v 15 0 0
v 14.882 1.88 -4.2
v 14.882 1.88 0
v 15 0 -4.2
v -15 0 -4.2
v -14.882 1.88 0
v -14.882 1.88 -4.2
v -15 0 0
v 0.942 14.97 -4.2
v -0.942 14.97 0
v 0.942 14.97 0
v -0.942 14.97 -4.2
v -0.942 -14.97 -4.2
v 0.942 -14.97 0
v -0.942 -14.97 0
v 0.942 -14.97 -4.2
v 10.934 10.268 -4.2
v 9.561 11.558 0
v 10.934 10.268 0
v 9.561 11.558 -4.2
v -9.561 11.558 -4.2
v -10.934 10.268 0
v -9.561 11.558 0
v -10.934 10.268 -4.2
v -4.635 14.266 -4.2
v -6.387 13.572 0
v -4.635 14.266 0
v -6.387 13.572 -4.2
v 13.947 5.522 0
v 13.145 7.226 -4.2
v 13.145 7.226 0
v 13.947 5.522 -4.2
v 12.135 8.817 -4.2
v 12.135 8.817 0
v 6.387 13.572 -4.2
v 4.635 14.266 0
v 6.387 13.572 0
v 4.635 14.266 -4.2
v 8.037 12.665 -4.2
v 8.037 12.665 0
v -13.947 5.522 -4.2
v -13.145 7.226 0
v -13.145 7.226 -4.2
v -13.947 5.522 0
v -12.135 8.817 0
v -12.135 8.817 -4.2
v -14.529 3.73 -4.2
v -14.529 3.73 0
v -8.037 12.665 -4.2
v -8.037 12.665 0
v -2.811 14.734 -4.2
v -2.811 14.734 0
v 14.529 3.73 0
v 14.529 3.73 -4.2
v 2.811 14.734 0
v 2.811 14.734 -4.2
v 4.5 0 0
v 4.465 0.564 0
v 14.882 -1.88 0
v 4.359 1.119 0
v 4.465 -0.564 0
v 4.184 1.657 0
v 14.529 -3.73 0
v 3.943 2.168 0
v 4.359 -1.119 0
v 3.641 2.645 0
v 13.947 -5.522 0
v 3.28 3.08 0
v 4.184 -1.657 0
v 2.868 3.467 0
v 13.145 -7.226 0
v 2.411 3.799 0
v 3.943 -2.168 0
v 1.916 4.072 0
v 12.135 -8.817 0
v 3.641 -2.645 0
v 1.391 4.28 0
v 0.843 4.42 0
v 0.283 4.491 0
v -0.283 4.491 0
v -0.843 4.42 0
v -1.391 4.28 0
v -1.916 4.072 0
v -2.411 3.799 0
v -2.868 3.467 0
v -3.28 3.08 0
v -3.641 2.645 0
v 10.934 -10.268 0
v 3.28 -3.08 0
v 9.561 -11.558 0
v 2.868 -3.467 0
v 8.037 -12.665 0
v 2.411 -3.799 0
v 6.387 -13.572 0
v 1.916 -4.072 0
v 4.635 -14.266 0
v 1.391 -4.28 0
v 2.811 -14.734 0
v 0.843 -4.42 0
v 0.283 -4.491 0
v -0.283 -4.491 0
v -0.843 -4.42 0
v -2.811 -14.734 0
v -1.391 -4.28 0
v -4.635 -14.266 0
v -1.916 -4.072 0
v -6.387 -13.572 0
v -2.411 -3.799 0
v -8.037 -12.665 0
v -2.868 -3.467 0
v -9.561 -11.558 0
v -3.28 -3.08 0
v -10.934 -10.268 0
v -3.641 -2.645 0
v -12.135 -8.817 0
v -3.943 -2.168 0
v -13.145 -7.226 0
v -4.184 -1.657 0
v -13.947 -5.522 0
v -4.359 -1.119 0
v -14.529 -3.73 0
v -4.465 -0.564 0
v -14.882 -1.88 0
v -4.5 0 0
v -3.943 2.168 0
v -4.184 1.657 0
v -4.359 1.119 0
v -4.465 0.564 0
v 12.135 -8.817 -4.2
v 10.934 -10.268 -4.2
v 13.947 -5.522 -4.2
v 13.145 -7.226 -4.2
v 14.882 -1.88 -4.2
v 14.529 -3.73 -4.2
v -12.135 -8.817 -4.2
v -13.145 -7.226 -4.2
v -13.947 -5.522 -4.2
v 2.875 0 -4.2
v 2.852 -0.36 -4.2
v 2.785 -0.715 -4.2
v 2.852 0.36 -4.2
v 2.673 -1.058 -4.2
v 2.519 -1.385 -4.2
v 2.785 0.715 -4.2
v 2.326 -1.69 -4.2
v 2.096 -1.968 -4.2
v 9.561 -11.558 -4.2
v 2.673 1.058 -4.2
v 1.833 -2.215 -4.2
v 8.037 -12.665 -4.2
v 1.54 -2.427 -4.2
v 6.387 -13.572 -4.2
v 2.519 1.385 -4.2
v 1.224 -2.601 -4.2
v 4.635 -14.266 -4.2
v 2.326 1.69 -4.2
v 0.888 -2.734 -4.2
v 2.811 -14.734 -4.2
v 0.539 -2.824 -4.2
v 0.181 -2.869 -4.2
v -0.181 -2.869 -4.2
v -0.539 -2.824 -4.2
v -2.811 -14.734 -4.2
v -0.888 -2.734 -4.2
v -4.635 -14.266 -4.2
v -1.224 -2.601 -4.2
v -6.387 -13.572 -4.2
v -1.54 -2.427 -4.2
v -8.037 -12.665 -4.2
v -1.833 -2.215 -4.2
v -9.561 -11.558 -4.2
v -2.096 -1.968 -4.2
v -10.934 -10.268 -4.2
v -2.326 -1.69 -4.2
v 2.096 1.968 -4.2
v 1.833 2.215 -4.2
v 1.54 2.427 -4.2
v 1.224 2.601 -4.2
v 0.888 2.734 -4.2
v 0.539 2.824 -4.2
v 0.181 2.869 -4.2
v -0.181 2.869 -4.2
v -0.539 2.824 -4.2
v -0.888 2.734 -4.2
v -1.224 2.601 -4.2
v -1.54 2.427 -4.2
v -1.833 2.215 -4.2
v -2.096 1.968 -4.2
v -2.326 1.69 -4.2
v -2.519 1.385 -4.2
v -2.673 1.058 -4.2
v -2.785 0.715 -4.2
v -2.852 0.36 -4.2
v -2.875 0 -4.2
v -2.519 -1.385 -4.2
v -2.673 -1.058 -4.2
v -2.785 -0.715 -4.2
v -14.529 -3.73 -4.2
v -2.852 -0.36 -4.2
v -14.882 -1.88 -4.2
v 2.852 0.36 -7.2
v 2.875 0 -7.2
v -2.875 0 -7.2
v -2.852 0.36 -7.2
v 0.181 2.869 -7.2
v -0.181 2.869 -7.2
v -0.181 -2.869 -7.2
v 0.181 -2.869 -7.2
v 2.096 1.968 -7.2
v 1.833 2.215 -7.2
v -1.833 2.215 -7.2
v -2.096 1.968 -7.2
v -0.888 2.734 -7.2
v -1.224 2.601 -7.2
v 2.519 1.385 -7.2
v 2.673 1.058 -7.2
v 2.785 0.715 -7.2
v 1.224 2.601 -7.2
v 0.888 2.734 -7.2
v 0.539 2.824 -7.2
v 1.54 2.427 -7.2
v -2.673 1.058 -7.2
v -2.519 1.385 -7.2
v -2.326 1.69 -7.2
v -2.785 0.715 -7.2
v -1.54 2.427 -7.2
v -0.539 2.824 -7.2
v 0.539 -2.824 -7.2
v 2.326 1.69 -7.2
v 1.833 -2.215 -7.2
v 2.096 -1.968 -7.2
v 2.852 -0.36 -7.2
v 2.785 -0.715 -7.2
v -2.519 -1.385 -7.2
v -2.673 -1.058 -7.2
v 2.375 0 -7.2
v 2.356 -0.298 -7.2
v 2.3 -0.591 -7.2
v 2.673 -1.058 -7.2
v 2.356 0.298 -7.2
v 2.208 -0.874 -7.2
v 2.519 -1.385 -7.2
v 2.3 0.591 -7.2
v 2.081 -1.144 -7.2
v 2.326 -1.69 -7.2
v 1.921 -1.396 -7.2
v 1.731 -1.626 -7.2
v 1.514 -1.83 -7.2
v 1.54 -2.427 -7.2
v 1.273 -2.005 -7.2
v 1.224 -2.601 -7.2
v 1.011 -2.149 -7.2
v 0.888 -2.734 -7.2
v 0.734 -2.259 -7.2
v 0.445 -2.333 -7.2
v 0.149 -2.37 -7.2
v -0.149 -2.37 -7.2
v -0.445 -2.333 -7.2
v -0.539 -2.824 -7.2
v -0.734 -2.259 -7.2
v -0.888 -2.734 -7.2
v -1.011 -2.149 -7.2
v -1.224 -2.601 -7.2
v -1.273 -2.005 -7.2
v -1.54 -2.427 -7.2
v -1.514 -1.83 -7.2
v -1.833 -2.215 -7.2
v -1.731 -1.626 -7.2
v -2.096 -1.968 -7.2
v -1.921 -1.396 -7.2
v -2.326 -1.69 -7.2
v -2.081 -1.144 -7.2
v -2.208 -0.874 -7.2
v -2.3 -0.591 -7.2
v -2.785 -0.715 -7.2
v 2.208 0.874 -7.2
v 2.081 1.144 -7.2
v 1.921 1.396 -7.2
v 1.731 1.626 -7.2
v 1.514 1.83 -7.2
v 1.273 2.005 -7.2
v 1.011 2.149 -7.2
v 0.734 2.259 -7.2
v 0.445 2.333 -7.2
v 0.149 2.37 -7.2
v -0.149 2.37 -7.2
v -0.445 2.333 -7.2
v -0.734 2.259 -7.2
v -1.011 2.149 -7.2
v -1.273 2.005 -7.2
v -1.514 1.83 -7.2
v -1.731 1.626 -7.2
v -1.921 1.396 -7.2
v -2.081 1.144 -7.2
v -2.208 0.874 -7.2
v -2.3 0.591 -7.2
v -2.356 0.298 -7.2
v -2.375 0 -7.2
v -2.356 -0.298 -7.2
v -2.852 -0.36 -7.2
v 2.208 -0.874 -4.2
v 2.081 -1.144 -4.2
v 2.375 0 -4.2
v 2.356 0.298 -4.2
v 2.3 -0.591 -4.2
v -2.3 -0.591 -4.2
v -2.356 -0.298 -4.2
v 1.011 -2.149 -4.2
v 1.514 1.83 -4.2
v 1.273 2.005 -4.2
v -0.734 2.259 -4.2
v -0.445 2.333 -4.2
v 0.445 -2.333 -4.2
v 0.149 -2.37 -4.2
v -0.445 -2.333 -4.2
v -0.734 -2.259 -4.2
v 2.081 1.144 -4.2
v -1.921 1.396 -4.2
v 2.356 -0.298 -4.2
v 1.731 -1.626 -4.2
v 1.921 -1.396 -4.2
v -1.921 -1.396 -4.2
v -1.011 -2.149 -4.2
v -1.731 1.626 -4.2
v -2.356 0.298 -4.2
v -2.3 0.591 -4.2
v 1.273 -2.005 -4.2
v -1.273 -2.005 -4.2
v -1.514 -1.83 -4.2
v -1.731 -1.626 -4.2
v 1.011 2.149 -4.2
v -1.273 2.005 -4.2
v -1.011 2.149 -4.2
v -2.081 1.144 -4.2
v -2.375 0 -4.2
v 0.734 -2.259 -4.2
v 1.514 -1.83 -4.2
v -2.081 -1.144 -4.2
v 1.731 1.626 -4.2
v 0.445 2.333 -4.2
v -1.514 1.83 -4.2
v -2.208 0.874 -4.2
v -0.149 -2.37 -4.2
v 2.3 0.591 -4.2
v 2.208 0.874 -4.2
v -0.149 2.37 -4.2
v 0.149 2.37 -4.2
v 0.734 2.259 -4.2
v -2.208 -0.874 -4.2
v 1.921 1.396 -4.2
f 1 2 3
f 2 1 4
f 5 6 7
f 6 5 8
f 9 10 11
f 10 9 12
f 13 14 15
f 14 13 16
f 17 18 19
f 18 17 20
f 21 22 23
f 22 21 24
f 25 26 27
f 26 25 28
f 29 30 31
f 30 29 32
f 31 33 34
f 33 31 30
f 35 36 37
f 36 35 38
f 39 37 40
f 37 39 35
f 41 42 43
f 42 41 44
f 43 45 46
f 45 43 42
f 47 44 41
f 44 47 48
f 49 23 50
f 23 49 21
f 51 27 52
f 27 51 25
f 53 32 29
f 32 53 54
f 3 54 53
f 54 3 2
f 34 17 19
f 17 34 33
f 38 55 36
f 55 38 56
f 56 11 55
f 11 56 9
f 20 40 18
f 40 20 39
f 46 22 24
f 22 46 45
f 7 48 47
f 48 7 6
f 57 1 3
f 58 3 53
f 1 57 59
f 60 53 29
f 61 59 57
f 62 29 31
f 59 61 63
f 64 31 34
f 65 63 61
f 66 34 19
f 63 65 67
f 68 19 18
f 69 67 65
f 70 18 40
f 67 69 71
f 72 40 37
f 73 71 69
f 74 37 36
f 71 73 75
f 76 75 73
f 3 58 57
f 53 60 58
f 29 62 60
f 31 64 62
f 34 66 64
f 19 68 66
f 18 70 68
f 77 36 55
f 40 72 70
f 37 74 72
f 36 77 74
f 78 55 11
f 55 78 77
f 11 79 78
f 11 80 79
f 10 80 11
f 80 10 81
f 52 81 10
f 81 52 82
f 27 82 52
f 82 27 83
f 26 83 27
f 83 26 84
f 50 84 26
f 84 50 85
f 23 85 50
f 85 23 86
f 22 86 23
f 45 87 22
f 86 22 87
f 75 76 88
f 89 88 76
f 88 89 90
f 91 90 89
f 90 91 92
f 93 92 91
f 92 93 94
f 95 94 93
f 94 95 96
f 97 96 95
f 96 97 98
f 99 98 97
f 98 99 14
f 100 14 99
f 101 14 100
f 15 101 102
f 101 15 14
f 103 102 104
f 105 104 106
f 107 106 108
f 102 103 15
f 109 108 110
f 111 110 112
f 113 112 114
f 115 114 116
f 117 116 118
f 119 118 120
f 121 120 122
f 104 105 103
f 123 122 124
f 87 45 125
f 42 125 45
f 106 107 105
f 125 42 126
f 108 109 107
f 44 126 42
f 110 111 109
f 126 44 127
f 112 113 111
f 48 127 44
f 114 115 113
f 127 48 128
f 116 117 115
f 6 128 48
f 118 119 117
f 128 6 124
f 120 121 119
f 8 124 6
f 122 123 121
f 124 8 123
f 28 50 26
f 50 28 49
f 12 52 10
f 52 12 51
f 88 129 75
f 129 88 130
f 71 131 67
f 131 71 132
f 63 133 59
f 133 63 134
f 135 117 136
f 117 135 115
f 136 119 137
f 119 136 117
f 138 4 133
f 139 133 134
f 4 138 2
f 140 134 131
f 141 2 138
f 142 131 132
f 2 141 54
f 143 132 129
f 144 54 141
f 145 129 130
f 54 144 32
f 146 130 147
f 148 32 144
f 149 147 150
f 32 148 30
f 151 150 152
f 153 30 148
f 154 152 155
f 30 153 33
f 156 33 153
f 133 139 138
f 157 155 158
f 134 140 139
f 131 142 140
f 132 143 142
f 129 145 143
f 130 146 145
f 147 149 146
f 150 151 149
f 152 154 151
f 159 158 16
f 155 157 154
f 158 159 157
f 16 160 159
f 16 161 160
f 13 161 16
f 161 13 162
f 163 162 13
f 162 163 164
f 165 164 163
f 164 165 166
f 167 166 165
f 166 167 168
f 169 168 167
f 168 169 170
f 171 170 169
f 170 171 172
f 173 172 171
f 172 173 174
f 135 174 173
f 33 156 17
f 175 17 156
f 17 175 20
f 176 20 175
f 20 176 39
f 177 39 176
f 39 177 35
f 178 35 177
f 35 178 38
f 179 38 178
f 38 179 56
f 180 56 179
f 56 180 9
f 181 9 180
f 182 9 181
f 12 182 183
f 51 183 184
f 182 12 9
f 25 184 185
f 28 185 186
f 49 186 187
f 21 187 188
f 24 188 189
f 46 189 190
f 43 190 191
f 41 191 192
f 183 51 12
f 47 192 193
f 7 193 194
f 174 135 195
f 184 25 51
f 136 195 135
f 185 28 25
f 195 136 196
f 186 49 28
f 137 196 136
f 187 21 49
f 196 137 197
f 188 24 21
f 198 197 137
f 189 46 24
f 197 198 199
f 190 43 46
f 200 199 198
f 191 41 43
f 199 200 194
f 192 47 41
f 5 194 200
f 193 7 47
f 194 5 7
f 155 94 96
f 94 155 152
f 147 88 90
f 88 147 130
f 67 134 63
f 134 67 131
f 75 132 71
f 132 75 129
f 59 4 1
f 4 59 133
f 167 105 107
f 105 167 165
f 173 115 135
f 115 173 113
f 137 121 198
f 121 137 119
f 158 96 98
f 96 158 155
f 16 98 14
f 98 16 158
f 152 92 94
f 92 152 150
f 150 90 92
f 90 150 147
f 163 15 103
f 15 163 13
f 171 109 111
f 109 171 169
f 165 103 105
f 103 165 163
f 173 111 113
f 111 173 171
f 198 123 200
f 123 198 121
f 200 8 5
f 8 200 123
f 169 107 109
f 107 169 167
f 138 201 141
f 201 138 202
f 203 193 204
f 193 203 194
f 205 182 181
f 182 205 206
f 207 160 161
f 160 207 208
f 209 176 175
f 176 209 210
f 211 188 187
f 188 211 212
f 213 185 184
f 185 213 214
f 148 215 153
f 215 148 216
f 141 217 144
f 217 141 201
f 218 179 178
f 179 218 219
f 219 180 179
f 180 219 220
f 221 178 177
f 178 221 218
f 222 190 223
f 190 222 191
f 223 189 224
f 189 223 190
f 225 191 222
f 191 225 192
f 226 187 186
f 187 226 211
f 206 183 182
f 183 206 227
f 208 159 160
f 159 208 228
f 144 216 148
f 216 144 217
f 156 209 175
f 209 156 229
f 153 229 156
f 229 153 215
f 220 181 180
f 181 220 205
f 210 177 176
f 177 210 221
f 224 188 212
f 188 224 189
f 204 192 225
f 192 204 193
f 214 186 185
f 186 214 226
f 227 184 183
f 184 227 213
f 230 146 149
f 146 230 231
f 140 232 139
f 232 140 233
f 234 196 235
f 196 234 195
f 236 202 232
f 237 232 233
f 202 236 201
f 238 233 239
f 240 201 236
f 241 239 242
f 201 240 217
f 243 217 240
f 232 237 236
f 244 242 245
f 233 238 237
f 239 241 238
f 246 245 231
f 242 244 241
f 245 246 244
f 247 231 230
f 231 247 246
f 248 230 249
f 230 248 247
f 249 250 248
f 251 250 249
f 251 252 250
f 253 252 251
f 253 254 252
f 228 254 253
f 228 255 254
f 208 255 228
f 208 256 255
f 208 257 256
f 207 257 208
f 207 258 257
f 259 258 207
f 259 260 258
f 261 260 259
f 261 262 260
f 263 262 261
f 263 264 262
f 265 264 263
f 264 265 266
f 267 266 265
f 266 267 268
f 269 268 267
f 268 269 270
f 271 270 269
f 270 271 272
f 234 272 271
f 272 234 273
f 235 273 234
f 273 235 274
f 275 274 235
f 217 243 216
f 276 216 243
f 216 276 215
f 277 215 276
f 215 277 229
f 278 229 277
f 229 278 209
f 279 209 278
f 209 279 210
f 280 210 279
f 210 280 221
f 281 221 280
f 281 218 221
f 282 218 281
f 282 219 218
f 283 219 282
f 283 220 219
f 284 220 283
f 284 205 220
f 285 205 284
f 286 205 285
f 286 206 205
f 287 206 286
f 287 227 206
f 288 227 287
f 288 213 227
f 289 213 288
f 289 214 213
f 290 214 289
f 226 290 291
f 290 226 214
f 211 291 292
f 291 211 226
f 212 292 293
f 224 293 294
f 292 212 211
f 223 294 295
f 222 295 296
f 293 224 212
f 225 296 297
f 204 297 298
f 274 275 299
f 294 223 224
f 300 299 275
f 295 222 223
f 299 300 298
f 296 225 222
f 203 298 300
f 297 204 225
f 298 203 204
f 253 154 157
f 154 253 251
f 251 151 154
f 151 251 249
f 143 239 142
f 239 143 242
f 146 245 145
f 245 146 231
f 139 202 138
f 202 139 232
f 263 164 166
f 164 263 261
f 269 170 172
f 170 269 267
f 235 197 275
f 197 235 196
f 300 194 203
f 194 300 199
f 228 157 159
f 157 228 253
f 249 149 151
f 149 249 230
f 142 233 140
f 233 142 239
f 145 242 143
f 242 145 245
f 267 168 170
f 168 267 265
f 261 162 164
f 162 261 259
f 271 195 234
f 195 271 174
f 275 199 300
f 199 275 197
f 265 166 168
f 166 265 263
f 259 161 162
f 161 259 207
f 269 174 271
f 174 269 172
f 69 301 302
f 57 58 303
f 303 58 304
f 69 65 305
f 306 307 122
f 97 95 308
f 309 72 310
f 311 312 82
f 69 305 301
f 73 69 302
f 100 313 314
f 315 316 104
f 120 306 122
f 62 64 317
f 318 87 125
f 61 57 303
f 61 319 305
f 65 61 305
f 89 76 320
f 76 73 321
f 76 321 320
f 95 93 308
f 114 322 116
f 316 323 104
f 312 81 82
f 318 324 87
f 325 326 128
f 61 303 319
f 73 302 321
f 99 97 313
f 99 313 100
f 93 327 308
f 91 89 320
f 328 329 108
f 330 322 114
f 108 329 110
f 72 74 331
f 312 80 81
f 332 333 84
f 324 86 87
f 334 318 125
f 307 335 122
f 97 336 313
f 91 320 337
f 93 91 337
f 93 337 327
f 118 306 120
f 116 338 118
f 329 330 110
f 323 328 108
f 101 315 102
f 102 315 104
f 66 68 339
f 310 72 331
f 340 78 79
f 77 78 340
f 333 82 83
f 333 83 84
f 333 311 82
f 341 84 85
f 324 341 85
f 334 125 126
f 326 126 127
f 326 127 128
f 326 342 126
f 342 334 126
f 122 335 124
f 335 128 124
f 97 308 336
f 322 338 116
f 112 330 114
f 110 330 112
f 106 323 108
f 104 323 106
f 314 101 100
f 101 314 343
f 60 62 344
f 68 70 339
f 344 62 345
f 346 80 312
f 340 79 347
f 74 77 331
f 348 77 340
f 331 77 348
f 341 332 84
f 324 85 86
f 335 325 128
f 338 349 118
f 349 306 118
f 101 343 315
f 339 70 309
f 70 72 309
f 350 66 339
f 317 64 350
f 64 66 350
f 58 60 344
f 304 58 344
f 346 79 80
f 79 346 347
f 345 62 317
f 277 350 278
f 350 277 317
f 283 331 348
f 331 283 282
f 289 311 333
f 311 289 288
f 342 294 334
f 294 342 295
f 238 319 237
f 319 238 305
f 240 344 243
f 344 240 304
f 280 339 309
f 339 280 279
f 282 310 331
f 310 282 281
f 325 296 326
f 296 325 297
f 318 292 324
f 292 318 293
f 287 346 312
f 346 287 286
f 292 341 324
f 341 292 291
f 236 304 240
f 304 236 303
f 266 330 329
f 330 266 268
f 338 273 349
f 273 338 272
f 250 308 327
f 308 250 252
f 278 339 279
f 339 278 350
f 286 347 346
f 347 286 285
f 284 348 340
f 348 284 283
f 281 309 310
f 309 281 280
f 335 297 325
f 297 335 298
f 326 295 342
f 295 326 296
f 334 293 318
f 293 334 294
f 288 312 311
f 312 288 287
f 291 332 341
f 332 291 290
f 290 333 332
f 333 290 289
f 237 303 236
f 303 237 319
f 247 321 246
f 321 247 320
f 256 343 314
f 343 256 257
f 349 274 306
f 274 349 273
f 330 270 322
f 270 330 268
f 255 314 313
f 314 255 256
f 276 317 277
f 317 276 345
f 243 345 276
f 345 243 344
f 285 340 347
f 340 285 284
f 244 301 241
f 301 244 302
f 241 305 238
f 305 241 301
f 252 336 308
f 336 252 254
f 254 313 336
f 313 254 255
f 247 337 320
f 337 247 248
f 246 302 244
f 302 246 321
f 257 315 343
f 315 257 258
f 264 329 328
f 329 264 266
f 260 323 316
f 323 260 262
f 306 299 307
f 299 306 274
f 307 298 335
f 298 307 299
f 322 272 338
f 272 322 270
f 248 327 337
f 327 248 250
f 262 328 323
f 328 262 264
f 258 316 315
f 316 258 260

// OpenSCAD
$fn = 50;


difference() {
	union() {
		translate(v = [0, 0, -4.2000000000]) {
			cylinder(h = 4.2000000000, r = 15.0000000000);
		}
		translate(v = [0, 0, -7.2000000000]) {
			cylinder(h = 7.2000000000, r = 2.8750000000);
		}
	}
	union() {
		translate(v = [0, 0, 0]) {
			rotate(a = [0, 0, 0]) {
				difference() {
					union() {
						translate(v = [0, 0, -7.2000000000]) {
							cylinder(h = 7.2000000000, r = 2.2500000000);
						}
						translate(v = [0, 0, -4.2000000000]) {
							cylinder(h = 4.2000000000, r1 = 2.3750000000, r2 = 4.5000000000);
						}
						translate(v = [0, 0, -7.2000000000]) {
							cylinder(h = 7.2000000000, r = 2.3750000000);
						}
						translate(v = [0, 0, -7.2000000000]) {
							cylinder(h = 7.2000000000, r = 2.2500000000);
						}
					}
					union();
				}
			}
		}
	}
}
